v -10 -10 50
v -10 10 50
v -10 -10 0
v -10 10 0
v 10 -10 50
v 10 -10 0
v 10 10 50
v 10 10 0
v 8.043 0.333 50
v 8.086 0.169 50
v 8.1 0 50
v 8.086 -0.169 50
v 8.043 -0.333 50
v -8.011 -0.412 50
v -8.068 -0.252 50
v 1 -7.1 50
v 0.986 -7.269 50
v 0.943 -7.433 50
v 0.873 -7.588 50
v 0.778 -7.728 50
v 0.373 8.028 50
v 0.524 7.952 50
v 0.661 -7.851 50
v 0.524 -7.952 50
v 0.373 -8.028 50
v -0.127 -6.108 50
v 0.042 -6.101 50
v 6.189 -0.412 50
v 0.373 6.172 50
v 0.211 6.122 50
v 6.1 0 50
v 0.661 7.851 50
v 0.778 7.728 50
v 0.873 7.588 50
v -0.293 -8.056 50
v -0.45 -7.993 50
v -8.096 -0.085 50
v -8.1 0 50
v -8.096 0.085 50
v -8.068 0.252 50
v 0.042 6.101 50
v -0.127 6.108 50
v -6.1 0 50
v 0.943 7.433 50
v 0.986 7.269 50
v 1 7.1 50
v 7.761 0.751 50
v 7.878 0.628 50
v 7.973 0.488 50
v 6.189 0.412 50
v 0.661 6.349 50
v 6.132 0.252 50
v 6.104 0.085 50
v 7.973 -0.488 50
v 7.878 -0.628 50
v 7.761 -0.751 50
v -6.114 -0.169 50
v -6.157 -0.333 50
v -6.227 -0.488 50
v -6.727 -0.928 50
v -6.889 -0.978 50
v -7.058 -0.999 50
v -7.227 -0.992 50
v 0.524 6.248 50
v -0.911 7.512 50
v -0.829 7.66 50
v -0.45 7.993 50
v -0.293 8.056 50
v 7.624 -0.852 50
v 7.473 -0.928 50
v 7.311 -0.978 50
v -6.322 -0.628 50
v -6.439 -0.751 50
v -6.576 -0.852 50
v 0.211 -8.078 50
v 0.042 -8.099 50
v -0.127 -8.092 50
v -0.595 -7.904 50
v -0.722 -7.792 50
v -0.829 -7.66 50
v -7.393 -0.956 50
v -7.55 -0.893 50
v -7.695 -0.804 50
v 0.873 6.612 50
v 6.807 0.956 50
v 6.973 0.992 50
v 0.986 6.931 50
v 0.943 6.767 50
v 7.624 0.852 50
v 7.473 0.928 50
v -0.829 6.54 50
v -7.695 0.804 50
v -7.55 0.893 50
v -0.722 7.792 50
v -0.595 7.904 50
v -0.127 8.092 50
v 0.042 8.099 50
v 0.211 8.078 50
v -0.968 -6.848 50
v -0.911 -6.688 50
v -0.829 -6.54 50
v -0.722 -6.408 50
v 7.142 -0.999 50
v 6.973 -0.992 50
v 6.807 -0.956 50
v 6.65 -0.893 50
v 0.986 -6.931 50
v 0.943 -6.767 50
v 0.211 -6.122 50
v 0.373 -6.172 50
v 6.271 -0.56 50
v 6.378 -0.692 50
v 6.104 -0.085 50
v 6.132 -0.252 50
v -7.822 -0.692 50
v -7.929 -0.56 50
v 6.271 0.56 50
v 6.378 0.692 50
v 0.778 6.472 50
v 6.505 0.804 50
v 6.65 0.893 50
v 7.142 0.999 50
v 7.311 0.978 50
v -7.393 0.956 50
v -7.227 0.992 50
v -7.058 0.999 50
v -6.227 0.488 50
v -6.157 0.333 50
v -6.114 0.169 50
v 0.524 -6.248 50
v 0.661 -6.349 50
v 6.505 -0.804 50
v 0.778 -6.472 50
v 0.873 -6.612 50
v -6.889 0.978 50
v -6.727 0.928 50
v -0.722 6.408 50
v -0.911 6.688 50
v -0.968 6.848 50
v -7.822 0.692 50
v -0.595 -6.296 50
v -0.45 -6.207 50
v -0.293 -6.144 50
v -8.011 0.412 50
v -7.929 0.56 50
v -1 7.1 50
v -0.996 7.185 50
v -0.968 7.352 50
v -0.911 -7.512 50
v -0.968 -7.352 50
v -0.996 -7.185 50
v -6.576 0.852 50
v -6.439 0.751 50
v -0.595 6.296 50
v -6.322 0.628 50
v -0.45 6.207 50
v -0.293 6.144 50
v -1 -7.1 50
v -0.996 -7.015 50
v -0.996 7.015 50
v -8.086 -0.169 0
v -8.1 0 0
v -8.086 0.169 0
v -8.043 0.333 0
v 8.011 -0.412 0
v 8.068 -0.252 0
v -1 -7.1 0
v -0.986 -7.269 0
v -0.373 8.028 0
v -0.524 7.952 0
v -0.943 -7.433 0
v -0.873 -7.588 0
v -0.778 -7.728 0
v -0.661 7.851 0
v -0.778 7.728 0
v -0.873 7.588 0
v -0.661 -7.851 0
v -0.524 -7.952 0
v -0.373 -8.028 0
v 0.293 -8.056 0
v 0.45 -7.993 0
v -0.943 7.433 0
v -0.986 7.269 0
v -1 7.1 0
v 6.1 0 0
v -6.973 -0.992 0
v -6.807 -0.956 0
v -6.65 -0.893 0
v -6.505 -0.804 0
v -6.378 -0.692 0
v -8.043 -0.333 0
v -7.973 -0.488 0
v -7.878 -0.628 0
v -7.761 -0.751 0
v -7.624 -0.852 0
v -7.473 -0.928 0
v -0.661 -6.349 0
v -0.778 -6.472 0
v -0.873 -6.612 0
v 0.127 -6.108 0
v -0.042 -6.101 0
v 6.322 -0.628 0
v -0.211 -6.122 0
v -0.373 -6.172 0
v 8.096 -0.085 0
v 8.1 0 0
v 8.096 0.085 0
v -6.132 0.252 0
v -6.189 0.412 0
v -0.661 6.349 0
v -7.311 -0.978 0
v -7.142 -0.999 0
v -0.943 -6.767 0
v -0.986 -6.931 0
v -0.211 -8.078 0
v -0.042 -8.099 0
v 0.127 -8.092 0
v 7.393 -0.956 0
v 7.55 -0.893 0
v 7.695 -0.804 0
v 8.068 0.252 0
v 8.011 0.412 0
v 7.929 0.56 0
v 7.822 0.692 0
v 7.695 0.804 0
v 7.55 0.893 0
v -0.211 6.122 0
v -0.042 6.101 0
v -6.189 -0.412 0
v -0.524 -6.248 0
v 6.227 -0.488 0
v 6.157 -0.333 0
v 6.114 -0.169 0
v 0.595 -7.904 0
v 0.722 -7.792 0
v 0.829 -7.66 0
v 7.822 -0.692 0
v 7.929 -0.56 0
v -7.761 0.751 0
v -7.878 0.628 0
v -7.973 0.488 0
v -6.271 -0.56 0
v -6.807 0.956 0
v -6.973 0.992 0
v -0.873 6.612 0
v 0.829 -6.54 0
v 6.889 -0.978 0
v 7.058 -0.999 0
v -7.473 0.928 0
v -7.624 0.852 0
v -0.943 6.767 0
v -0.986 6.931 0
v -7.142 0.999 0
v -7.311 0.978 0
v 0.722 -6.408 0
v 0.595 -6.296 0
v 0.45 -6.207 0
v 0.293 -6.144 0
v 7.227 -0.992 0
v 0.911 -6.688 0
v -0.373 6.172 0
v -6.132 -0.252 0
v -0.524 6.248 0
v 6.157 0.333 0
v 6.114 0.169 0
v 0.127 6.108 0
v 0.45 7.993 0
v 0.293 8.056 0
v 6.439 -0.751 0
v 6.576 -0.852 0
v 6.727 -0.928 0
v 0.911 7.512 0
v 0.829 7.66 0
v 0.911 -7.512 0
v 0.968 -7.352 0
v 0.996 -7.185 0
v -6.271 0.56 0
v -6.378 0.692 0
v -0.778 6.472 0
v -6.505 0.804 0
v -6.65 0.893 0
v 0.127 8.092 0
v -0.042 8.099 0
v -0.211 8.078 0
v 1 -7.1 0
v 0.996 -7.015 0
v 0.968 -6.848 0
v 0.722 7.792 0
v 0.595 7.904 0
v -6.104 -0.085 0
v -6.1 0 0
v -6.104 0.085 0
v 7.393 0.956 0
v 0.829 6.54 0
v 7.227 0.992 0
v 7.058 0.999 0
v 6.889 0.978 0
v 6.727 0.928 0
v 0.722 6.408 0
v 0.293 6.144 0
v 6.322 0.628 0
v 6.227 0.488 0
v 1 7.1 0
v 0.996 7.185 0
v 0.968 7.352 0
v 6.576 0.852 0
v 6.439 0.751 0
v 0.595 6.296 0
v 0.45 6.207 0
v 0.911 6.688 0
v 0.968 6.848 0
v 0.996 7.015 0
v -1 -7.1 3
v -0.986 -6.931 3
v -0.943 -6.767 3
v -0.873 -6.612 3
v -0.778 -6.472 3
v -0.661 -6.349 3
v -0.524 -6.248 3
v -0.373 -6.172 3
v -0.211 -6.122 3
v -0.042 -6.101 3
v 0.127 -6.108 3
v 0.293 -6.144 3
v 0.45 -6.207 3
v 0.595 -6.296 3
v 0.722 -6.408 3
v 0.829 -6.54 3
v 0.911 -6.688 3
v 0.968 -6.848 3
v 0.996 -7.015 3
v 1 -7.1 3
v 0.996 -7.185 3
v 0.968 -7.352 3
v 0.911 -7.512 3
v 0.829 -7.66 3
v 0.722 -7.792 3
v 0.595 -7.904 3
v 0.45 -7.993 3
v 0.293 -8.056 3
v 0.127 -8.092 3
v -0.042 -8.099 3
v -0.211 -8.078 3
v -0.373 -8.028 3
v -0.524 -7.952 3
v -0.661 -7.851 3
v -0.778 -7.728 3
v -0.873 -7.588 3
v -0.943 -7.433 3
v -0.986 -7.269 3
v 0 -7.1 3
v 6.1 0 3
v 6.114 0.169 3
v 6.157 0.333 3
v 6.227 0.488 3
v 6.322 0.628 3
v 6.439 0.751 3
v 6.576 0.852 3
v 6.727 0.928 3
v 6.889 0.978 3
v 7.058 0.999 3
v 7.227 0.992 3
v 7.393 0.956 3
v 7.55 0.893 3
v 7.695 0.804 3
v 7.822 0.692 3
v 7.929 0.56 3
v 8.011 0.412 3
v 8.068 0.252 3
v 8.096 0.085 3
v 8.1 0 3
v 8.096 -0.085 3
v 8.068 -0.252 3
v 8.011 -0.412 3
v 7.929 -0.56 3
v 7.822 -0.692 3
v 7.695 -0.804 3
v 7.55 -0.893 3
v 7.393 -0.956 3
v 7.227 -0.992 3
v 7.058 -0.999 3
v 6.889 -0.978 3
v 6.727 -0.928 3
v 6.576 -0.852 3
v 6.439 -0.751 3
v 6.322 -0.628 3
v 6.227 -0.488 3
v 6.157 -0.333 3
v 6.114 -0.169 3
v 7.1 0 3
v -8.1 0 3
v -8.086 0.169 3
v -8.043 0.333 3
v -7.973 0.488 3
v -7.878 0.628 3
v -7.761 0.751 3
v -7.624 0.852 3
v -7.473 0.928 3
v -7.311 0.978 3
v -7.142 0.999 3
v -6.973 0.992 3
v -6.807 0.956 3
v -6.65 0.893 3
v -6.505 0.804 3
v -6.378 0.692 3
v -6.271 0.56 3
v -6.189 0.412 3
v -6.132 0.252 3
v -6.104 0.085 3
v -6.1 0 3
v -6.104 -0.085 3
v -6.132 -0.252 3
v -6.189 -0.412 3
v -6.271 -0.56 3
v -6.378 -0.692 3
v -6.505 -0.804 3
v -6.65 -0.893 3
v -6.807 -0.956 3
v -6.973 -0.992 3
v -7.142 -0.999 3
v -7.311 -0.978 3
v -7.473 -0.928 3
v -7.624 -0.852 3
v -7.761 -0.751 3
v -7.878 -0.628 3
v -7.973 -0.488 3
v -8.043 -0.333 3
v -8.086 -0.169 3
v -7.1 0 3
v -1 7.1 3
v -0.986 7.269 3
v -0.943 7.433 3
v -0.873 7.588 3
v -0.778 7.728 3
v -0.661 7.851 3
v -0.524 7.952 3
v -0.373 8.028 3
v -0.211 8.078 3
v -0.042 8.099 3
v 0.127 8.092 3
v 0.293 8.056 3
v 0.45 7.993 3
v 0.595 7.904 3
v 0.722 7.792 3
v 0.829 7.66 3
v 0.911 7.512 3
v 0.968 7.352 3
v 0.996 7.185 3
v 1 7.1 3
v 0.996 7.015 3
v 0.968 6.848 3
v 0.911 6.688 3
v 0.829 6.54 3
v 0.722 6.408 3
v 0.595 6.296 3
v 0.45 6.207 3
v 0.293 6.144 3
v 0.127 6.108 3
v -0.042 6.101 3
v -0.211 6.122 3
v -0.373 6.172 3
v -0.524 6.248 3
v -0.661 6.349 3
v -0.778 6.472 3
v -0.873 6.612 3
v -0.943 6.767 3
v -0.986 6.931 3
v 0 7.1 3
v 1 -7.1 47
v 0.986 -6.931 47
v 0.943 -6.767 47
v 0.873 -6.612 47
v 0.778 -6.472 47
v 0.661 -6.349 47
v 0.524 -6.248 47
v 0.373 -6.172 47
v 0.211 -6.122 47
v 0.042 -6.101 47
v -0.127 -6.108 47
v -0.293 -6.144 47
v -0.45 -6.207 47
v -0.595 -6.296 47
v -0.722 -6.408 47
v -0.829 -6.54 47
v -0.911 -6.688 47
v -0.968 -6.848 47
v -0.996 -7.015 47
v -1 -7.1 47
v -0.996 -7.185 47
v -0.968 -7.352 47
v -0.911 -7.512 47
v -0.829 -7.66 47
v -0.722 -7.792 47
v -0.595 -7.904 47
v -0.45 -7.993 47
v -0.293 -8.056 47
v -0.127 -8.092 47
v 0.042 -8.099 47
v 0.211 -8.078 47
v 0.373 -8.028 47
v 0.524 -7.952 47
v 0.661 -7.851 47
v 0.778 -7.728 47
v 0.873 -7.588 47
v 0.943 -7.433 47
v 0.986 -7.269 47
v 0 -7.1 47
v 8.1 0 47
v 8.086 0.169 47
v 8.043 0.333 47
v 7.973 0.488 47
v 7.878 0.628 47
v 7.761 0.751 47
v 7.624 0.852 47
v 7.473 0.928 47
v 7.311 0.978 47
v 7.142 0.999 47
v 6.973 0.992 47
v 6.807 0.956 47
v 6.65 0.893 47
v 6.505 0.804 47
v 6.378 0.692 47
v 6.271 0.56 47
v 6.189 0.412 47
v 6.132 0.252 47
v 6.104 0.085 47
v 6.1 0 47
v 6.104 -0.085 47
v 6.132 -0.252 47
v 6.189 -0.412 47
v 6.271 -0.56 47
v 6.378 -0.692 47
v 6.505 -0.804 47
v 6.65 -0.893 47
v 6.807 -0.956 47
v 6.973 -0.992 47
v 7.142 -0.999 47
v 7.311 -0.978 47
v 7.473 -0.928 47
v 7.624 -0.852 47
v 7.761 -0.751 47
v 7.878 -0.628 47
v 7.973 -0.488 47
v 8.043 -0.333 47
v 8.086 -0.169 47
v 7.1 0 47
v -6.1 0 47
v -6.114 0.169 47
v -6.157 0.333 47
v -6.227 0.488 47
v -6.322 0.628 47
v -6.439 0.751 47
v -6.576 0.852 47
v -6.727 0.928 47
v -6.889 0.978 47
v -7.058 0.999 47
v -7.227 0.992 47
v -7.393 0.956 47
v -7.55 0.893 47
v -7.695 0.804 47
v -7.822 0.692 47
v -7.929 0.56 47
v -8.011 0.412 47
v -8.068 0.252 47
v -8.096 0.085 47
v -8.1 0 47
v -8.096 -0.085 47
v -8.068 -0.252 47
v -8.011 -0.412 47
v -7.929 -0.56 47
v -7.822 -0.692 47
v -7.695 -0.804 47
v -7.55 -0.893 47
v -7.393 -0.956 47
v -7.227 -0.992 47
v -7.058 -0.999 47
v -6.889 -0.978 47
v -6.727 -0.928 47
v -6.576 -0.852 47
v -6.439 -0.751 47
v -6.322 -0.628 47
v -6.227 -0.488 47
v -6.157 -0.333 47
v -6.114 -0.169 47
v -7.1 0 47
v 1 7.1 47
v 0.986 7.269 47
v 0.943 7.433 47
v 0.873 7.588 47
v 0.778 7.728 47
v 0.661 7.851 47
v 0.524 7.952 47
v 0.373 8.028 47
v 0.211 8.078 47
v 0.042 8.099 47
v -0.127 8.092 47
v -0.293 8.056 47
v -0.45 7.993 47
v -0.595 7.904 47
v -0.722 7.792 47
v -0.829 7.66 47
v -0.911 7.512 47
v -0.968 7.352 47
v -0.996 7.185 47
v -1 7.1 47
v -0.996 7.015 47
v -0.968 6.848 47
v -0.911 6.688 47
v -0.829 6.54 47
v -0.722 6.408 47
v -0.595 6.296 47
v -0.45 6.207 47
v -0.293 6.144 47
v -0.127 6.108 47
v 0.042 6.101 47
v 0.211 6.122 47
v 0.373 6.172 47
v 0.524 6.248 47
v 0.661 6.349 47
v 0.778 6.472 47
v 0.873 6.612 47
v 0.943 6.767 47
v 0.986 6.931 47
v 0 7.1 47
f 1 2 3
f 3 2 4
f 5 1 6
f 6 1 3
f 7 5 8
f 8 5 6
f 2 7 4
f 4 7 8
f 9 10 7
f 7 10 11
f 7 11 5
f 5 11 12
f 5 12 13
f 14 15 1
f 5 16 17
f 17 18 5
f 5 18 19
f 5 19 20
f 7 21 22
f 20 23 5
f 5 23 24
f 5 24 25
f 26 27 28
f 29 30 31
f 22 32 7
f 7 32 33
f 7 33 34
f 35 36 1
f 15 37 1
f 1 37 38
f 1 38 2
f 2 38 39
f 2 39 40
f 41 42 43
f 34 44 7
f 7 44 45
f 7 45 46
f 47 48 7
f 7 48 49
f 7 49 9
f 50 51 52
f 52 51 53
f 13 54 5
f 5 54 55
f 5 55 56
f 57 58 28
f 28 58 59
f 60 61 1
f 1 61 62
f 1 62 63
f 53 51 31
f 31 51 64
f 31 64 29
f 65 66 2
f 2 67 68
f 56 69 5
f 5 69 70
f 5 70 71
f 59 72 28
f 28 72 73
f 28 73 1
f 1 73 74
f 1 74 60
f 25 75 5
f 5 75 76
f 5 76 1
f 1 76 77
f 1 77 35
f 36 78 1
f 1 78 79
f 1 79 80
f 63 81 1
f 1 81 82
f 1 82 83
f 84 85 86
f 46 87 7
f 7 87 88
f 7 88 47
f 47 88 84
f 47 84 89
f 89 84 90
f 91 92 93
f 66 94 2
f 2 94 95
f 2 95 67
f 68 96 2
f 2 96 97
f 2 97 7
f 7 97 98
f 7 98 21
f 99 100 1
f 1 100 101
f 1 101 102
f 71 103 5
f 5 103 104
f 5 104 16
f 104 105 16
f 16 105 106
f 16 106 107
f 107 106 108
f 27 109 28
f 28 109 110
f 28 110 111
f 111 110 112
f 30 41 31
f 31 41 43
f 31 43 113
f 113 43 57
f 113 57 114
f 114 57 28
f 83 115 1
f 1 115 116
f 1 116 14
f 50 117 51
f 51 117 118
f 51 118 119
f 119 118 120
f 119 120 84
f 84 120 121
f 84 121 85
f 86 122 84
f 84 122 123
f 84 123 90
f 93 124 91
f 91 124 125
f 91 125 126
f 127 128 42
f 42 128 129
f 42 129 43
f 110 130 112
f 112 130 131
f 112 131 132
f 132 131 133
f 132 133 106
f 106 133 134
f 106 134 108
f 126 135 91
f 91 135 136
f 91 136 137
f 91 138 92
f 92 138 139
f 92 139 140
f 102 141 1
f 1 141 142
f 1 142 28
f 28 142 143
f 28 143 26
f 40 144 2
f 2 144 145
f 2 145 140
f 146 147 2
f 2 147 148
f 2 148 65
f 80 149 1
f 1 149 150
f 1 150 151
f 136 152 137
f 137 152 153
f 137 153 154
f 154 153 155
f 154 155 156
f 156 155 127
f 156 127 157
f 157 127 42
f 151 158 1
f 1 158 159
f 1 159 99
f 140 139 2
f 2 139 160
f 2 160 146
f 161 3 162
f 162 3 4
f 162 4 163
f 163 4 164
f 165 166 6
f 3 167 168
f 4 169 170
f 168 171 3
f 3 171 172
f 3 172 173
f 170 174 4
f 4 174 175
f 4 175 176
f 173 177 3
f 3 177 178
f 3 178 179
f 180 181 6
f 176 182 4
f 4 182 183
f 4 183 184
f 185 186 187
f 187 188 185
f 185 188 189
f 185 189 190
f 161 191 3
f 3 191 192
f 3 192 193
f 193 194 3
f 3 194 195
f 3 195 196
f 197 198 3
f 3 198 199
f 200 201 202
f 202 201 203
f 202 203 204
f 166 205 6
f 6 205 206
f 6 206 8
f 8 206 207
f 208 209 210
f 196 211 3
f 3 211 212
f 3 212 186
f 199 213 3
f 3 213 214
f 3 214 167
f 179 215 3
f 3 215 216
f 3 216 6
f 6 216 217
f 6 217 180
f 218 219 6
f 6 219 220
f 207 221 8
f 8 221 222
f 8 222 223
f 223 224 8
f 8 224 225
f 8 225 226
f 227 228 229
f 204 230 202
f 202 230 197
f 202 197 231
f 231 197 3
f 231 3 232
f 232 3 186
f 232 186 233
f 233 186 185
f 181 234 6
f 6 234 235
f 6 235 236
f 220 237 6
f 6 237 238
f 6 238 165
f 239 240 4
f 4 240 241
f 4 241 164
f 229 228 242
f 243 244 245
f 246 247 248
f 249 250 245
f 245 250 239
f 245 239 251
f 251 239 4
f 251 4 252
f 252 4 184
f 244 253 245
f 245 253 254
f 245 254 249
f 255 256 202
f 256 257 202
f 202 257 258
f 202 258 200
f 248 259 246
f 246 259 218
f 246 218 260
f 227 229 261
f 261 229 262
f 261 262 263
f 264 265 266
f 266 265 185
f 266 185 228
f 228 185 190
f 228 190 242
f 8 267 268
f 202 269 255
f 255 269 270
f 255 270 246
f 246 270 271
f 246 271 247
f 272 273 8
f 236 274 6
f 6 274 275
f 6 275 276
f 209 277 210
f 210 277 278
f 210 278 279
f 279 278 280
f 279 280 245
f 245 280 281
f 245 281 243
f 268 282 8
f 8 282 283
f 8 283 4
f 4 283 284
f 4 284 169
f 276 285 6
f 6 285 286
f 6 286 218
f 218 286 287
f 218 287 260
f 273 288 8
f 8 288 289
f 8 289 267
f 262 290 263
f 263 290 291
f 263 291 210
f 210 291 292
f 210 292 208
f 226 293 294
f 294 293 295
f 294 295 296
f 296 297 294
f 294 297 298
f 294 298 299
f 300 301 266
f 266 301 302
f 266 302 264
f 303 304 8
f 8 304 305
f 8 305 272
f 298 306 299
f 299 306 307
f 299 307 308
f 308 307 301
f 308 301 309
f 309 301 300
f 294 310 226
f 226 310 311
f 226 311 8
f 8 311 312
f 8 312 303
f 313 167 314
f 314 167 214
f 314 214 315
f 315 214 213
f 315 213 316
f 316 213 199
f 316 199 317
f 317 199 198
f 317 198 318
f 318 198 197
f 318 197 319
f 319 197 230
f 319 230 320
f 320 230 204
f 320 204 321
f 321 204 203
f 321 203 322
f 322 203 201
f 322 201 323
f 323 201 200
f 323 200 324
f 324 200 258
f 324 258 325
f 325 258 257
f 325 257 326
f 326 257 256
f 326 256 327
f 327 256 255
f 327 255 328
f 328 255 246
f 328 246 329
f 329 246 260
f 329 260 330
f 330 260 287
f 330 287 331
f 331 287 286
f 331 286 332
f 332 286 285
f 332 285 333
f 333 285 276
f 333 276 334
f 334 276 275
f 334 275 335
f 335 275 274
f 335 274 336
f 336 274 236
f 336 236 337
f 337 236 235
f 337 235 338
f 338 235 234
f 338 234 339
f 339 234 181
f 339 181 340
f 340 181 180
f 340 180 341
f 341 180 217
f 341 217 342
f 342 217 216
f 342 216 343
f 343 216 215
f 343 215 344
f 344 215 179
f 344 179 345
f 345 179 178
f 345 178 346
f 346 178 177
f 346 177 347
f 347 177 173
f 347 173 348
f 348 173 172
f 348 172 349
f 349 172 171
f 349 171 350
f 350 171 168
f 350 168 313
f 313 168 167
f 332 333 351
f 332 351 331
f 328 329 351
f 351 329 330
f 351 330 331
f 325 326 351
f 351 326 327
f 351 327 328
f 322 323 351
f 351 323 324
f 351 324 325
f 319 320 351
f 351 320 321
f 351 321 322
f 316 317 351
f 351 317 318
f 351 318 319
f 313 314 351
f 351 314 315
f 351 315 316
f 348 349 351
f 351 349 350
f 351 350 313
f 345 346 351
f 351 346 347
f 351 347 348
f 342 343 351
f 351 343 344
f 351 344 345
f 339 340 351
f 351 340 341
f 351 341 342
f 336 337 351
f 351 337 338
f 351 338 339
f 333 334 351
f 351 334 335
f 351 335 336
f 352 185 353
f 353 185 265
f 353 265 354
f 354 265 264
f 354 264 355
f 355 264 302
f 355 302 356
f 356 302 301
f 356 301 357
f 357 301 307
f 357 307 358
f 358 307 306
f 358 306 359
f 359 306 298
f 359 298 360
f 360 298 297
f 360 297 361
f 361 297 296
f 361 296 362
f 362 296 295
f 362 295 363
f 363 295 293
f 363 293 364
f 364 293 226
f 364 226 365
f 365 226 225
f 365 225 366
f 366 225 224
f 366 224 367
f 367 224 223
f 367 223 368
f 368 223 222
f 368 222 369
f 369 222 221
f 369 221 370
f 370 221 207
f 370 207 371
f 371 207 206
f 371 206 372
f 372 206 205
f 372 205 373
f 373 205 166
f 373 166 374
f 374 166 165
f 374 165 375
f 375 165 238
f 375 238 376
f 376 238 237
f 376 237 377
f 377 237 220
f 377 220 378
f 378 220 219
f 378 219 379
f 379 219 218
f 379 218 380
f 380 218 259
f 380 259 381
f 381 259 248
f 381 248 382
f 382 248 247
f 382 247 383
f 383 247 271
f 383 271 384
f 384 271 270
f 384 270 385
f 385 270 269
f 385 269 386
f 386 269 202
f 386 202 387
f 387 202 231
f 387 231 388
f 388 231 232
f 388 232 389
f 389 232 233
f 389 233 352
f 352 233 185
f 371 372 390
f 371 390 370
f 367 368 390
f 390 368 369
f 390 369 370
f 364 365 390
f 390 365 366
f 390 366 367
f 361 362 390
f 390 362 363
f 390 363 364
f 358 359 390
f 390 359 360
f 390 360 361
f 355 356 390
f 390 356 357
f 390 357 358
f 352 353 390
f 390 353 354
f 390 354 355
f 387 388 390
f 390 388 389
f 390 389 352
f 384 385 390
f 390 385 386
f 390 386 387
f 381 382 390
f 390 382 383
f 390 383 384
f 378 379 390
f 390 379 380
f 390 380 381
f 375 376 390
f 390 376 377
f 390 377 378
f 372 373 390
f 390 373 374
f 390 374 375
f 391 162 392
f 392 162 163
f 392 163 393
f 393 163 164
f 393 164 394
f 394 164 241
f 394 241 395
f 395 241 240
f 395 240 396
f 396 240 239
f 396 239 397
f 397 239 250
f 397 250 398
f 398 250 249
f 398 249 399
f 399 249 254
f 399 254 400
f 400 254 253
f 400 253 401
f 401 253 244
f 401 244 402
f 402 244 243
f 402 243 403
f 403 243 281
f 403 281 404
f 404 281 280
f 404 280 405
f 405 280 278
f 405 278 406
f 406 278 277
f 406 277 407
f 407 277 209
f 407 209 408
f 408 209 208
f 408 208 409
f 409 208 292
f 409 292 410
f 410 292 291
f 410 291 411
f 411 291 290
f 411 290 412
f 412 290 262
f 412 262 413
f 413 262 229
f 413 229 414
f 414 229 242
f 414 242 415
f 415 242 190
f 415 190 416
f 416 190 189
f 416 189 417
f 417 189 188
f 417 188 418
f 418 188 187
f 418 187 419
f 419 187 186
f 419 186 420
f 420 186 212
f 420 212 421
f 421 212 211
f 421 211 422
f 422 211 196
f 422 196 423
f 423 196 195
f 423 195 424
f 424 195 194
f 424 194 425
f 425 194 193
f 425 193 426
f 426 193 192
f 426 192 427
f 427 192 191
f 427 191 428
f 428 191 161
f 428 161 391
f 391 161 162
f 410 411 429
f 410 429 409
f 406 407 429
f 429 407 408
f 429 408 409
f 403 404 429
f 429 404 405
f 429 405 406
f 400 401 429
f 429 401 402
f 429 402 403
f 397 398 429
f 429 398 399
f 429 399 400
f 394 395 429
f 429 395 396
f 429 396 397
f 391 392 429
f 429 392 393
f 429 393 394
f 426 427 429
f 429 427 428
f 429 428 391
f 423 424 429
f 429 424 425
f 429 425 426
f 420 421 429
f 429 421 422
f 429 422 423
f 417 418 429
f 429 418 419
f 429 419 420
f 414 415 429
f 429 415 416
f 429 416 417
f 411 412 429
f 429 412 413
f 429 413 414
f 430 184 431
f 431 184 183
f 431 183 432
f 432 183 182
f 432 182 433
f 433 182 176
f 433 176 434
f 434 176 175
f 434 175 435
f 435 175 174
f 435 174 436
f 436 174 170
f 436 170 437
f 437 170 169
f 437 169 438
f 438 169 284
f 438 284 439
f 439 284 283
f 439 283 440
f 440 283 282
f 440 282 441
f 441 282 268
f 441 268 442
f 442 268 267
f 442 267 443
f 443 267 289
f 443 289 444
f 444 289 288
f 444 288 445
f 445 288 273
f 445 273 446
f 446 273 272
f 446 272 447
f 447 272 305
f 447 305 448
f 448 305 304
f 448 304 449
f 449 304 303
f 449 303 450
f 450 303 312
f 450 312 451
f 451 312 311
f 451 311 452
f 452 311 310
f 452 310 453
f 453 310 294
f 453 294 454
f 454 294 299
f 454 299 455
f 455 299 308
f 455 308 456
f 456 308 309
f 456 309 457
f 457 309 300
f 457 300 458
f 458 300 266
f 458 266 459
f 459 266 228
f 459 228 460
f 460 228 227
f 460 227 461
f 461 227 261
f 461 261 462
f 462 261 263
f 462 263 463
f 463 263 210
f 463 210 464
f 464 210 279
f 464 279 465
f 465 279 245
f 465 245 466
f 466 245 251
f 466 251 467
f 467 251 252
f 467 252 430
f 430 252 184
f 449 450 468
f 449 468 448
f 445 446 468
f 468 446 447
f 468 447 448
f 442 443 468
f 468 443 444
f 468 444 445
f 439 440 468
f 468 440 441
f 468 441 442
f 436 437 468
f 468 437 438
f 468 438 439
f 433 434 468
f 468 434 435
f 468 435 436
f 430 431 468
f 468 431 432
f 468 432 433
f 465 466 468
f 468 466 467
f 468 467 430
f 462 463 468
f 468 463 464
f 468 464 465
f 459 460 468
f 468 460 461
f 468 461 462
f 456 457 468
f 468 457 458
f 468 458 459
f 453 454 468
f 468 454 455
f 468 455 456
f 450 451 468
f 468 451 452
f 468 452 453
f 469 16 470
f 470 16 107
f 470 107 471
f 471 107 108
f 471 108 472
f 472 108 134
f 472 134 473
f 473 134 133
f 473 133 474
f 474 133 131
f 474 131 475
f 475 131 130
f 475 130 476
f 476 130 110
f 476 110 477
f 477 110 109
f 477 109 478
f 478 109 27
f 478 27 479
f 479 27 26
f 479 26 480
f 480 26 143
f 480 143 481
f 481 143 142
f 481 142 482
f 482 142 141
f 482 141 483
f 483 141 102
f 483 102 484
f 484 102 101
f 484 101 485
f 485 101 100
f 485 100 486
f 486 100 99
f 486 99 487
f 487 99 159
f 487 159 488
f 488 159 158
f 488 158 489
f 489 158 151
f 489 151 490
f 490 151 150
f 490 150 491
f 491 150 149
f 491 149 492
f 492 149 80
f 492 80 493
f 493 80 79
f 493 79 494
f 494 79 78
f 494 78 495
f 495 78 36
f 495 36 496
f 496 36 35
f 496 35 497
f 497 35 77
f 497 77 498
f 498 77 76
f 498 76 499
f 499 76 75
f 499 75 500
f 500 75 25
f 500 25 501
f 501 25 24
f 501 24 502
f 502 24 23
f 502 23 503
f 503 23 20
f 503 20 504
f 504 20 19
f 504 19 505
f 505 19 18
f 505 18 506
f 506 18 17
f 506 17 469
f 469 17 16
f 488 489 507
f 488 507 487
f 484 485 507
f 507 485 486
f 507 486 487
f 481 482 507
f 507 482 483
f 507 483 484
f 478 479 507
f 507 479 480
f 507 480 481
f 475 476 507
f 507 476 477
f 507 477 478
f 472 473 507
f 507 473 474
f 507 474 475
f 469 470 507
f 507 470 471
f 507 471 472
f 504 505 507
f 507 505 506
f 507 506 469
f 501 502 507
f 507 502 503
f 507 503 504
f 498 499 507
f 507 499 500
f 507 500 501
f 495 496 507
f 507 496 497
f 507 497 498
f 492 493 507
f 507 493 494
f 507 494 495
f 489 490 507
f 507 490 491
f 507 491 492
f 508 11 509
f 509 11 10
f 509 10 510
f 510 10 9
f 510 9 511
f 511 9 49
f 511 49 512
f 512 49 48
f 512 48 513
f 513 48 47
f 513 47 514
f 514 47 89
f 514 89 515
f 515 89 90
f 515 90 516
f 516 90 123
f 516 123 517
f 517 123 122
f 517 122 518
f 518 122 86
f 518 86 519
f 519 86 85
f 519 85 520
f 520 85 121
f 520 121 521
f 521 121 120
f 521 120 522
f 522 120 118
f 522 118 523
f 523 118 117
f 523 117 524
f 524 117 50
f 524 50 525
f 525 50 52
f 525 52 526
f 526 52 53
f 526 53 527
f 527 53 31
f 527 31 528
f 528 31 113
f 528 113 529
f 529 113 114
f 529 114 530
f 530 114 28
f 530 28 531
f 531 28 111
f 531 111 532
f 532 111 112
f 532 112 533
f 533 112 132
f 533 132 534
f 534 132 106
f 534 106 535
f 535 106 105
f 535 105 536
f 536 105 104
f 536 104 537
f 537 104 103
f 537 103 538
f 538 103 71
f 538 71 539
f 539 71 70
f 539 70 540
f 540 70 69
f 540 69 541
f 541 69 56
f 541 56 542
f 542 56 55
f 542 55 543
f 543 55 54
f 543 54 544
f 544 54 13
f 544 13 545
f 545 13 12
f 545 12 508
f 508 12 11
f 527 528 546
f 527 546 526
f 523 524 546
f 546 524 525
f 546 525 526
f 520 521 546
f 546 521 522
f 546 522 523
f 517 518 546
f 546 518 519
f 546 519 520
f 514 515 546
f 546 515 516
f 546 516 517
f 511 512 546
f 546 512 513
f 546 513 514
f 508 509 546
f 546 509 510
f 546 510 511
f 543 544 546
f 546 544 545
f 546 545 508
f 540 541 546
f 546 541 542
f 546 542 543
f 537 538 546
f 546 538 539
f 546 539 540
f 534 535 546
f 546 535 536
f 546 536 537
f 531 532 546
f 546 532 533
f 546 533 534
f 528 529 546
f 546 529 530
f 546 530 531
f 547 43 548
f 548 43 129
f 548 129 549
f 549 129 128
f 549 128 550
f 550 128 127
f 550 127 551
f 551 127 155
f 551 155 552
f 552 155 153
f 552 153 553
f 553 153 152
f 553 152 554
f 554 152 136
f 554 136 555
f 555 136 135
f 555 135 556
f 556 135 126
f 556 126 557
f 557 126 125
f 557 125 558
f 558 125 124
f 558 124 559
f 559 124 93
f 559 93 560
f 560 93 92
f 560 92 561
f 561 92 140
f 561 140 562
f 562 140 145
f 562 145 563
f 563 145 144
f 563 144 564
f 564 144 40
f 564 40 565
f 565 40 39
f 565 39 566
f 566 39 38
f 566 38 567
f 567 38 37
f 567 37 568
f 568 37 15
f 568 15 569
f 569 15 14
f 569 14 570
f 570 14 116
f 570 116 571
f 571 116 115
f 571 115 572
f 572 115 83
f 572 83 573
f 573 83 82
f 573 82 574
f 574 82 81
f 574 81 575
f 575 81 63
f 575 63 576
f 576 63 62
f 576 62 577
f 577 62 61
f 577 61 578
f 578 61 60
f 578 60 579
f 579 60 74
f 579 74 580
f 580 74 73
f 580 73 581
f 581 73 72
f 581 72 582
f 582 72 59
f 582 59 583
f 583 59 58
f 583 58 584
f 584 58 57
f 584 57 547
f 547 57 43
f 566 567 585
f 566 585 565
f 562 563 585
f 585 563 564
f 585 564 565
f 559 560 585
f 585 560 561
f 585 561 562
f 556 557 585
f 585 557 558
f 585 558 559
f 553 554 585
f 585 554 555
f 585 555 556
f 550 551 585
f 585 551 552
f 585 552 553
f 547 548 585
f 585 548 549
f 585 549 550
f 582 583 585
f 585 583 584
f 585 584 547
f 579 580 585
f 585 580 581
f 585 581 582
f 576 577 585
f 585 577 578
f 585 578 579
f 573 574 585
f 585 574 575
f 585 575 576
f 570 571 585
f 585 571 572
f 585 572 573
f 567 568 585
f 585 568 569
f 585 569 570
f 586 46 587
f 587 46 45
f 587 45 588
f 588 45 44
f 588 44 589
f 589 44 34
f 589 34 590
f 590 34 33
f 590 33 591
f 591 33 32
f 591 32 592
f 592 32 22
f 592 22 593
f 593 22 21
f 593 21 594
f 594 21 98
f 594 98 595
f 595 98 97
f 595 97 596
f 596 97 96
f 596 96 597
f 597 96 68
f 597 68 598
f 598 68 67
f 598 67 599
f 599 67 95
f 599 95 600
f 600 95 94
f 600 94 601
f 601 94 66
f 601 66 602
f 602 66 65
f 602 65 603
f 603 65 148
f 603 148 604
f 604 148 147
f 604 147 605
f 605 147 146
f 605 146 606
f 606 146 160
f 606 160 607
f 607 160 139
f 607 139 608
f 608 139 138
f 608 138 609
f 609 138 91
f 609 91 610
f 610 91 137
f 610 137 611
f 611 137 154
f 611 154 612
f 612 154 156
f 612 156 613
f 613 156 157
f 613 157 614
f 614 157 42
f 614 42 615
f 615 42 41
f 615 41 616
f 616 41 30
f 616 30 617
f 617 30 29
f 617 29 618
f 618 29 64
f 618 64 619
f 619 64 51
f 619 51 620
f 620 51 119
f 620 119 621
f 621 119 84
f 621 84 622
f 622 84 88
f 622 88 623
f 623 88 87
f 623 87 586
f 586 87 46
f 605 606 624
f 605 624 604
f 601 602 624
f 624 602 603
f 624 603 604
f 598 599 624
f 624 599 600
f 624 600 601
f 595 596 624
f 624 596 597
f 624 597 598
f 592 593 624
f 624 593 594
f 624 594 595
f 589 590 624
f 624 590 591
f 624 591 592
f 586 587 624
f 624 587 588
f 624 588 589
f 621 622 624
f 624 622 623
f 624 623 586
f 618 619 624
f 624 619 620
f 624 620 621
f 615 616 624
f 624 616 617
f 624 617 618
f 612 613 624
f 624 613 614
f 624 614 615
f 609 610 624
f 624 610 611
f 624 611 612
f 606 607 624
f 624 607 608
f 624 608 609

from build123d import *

# Parameters (mm, degrees)
SKETCH_1_W          = 20
SKETCH_1_H          = 20
EXTRUDE_1_DEPTH     = 50
SKETCH_1_3_R        = 1
CUT_EXTRUDE_1_DEPTH = 3
CUT_EXTRUDE_START   = 47
SKETCH_1_4_R        = 1
CUT_EXTRUDE_2_DEPTH = 3


with BuildPart() as part:
    # 草图1 → 凸台-拉伸1 (new body)
    with BuildSketch(Plane.XY):
        Rectangle(SKETCH_1_W, SKETCH_1_H)
    extrude(amount=EXTRUDE_1_DEPTH)

    # 草图1<3> → 切除-拉伸1 (cut)
    with BuildSketch(Plane.XY):
        with Locations((-7.1, 0)):
            Circle(SKETCH_1_3_R)
        with Locations((0, 7.1)):
            Circle(SKETCH_1_3_R)
        with Locations((7.1, 0)):
            Circle(SKETCH_1_3_R)
        with Locations((0, -7.1)):
            Circle(SKETCH_1_3_R)
    extrude(amount=CUT_EXTRUDE_1_DEPTH, mode=Mode.SUBTRACT)

    # 草图1<4> → 切除-拉伸2 (cut)
    with BuildSketch(Plane.XY.offset(CUT_EXTRUDE_START)):
        with Locations((-7.1, 0)):
            Circle(SKETCH_1_4_R)
        with Locations((0, 7.1)):
            Circle(SKETCH_1_4_R)
        with Locations((7.1, 0)):
            Circle(SKETCH_1_4_R)
        with Locations((0, -7.1)):
            Circle(SKETCH_1_4_R)
    extrude(amount=CUT_EXTRUDE_2_DEPTH, mode=Mode.SUBTRACT)


solid = part.part
